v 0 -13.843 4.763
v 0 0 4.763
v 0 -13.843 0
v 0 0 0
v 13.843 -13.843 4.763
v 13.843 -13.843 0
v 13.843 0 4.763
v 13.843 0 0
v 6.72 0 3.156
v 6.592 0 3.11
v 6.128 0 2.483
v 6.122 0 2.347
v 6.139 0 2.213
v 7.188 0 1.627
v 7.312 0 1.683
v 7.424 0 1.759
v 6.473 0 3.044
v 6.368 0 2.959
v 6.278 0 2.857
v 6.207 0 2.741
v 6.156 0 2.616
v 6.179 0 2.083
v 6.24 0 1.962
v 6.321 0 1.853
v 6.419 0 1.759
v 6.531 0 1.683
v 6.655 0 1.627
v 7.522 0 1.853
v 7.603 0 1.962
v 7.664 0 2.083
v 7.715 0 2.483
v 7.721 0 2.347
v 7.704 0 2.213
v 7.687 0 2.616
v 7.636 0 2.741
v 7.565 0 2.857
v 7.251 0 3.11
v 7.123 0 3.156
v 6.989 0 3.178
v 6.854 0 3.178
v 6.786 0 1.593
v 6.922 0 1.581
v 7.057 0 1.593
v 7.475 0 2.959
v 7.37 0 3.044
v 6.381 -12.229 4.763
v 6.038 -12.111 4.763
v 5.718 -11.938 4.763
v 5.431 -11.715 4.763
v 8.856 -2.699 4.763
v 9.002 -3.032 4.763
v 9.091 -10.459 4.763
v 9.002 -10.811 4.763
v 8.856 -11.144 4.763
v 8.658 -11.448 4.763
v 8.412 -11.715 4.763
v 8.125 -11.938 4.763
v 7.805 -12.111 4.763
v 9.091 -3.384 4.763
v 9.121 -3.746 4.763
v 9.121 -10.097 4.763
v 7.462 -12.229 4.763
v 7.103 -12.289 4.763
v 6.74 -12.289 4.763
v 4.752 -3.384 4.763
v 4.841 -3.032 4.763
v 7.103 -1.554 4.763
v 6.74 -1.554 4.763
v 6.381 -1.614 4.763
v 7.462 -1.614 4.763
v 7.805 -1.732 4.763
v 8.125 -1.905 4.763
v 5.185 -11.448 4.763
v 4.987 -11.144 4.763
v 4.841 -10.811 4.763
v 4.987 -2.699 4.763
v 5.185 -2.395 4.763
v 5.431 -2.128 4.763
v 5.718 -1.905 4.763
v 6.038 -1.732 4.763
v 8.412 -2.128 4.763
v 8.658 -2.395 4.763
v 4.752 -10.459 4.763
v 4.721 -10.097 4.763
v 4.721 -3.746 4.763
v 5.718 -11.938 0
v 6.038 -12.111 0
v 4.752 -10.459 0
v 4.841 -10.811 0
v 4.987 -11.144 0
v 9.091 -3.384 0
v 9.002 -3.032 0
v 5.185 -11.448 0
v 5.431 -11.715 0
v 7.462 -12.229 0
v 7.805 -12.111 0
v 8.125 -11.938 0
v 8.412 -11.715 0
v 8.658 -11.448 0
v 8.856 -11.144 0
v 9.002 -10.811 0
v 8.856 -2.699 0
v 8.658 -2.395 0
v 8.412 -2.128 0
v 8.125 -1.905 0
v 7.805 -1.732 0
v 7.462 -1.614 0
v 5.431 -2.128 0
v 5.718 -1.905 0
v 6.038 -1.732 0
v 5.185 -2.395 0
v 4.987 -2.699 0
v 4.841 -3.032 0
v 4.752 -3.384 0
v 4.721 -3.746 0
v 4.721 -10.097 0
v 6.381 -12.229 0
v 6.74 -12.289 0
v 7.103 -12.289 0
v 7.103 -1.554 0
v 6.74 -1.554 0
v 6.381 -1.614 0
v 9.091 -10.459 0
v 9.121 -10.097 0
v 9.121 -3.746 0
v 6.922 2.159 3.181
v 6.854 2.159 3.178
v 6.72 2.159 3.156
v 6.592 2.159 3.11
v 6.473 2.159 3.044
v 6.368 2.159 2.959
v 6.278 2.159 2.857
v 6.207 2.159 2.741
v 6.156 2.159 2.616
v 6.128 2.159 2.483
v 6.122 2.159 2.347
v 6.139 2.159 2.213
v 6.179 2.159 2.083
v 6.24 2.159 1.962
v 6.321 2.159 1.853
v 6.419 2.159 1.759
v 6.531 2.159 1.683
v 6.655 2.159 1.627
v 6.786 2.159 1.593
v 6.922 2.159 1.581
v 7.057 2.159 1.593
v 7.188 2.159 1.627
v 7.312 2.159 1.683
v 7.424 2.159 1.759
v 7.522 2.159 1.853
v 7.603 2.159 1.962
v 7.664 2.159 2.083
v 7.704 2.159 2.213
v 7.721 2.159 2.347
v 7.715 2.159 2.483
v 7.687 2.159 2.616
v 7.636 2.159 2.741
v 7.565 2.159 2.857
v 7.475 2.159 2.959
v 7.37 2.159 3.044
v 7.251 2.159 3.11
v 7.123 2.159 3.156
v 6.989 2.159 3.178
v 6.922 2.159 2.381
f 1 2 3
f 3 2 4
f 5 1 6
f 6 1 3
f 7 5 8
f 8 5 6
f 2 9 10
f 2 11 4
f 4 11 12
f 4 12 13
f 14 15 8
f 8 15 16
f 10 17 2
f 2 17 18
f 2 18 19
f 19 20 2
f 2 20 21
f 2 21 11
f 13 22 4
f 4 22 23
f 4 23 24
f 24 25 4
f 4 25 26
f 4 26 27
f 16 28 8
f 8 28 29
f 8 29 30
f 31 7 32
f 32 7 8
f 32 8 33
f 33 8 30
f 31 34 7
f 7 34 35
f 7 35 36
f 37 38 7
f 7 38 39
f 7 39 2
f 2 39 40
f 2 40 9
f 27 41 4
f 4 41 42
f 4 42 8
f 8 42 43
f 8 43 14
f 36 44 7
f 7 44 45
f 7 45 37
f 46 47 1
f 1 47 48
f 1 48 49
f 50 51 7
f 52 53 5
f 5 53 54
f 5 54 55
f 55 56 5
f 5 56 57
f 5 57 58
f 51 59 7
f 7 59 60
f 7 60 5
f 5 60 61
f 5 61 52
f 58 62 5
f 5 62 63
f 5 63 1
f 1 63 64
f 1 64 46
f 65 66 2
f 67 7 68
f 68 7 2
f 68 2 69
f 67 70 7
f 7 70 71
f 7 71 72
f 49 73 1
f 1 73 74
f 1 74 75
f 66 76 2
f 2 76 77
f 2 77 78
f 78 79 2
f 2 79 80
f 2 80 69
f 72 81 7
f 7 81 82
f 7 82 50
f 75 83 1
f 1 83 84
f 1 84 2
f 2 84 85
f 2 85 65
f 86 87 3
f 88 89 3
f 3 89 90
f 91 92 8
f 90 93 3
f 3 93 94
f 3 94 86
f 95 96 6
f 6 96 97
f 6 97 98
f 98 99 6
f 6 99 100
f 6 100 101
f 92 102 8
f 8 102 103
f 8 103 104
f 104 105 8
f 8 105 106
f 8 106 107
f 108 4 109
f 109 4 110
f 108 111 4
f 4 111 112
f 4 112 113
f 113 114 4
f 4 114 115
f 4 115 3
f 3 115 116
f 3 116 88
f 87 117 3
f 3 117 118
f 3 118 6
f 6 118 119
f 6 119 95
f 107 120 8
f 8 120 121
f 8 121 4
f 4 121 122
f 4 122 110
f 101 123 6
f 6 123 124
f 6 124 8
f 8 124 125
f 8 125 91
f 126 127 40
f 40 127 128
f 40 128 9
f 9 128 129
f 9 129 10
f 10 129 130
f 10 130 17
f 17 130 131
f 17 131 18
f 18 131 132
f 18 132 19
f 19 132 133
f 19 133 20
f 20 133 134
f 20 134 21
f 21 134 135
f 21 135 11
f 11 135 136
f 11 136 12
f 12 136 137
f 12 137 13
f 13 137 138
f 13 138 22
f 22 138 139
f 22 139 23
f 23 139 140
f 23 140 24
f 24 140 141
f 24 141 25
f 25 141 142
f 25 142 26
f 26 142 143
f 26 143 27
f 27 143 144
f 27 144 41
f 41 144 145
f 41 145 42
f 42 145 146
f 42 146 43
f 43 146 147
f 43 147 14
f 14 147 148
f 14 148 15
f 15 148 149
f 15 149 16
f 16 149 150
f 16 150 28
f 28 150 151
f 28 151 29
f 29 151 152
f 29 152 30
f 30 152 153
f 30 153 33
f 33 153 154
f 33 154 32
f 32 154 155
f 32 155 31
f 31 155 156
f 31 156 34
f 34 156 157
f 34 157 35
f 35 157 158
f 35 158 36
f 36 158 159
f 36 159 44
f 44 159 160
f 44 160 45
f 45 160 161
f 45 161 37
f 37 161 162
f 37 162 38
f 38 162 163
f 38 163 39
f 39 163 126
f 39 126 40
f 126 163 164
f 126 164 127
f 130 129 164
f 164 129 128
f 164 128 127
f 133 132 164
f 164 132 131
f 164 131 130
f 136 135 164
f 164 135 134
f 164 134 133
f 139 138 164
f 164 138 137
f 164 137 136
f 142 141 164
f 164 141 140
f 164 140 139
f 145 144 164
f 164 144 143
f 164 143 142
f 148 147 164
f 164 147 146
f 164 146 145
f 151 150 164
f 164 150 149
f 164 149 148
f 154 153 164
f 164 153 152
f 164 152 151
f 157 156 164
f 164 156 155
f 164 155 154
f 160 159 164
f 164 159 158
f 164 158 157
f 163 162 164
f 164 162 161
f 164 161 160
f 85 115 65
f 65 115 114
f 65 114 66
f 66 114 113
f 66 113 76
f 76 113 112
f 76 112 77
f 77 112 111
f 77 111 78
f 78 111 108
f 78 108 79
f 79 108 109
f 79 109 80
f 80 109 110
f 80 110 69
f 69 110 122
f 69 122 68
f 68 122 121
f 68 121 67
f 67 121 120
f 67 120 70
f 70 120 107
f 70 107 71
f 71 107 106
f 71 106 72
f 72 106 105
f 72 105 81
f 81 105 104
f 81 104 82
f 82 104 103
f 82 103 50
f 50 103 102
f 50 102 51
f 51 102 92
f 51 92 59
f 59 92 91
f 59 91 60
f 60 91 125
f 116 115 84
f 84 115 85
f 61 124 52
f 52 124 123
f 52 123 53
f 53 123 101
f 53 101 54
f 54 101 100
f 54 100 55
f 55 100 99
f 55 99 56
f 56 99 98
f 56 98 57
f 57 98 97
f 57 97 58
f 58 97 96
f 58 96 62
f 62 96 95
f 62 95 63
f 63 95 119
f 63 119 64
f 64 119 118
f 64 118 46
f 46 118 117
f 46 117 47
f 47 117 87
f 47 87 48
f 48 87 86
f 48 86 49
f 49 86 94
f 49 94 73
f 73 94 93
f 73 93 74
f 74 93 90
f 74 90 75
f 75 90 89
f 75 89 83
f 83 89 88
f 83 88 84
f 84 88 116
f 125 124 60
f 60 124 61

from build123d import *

# Parameters (mm, degrees)
SKETCH1_W           = 13.843
SKETCH1_H           = 13.843
BOSS_EXTRUDE1_DEPTH = 4.7625
SKETCH2_R           = 0.8001
BOSS_EXTRUDE2_DEPTH = 2.159
CUT_EXTRUDE1_DEPTH  = 8.001


with BuildPart() as part:
    # Sketch1 → Boss-Extrude1 (new body)
    with BuildSketch(Plane.XY):
        with Locations((6.9215, -6.9215)):
            Rectangle(SKETCH1_W, SKETCH1_H)
    extrude(amount=BOSS_EXTRUDE1_DEPTH)

    # Sketch2 → Boss-Extrude2 (add)
    with BuildSketch(Plane(origin=(0, 0, 0), x_dir=(1, 0, 0), z_dir=(0, 1, 0))):
        with Locations((6.9215, -2.38125)):
            Circle(SKETCH2_R)
    extrude(amount=BOSS_EXTRUDE2_DEPTH)

    # Sketch3 → Cut-Extrude1 (cut)
    with BuildSketch(Plane(origin=(0, 0, 0), x_dir=(-1, 0, 0), z_dir=(0, 0, -1))):
        with BuildLine():
            Line((-9.1215, -10.0965), (-9.1215, -3.7465))
            ThreePointArc((-9.1215, -3.7465), (-6.9215, -1.5465), (-4.7215, -3.7465))
            Line((-4.7215, -3.7465), (-4.7215, -10.0965))
            ThreePointArc((-4.7215, -10.0965), (-6.9215, -12.2965), (-9.1215, -10.0965))
        make_face()
    extrude(amount=-CUT_EXTRUDE1_DEPTH, mode=Mode.SUBTRACT)


solid = part.part
